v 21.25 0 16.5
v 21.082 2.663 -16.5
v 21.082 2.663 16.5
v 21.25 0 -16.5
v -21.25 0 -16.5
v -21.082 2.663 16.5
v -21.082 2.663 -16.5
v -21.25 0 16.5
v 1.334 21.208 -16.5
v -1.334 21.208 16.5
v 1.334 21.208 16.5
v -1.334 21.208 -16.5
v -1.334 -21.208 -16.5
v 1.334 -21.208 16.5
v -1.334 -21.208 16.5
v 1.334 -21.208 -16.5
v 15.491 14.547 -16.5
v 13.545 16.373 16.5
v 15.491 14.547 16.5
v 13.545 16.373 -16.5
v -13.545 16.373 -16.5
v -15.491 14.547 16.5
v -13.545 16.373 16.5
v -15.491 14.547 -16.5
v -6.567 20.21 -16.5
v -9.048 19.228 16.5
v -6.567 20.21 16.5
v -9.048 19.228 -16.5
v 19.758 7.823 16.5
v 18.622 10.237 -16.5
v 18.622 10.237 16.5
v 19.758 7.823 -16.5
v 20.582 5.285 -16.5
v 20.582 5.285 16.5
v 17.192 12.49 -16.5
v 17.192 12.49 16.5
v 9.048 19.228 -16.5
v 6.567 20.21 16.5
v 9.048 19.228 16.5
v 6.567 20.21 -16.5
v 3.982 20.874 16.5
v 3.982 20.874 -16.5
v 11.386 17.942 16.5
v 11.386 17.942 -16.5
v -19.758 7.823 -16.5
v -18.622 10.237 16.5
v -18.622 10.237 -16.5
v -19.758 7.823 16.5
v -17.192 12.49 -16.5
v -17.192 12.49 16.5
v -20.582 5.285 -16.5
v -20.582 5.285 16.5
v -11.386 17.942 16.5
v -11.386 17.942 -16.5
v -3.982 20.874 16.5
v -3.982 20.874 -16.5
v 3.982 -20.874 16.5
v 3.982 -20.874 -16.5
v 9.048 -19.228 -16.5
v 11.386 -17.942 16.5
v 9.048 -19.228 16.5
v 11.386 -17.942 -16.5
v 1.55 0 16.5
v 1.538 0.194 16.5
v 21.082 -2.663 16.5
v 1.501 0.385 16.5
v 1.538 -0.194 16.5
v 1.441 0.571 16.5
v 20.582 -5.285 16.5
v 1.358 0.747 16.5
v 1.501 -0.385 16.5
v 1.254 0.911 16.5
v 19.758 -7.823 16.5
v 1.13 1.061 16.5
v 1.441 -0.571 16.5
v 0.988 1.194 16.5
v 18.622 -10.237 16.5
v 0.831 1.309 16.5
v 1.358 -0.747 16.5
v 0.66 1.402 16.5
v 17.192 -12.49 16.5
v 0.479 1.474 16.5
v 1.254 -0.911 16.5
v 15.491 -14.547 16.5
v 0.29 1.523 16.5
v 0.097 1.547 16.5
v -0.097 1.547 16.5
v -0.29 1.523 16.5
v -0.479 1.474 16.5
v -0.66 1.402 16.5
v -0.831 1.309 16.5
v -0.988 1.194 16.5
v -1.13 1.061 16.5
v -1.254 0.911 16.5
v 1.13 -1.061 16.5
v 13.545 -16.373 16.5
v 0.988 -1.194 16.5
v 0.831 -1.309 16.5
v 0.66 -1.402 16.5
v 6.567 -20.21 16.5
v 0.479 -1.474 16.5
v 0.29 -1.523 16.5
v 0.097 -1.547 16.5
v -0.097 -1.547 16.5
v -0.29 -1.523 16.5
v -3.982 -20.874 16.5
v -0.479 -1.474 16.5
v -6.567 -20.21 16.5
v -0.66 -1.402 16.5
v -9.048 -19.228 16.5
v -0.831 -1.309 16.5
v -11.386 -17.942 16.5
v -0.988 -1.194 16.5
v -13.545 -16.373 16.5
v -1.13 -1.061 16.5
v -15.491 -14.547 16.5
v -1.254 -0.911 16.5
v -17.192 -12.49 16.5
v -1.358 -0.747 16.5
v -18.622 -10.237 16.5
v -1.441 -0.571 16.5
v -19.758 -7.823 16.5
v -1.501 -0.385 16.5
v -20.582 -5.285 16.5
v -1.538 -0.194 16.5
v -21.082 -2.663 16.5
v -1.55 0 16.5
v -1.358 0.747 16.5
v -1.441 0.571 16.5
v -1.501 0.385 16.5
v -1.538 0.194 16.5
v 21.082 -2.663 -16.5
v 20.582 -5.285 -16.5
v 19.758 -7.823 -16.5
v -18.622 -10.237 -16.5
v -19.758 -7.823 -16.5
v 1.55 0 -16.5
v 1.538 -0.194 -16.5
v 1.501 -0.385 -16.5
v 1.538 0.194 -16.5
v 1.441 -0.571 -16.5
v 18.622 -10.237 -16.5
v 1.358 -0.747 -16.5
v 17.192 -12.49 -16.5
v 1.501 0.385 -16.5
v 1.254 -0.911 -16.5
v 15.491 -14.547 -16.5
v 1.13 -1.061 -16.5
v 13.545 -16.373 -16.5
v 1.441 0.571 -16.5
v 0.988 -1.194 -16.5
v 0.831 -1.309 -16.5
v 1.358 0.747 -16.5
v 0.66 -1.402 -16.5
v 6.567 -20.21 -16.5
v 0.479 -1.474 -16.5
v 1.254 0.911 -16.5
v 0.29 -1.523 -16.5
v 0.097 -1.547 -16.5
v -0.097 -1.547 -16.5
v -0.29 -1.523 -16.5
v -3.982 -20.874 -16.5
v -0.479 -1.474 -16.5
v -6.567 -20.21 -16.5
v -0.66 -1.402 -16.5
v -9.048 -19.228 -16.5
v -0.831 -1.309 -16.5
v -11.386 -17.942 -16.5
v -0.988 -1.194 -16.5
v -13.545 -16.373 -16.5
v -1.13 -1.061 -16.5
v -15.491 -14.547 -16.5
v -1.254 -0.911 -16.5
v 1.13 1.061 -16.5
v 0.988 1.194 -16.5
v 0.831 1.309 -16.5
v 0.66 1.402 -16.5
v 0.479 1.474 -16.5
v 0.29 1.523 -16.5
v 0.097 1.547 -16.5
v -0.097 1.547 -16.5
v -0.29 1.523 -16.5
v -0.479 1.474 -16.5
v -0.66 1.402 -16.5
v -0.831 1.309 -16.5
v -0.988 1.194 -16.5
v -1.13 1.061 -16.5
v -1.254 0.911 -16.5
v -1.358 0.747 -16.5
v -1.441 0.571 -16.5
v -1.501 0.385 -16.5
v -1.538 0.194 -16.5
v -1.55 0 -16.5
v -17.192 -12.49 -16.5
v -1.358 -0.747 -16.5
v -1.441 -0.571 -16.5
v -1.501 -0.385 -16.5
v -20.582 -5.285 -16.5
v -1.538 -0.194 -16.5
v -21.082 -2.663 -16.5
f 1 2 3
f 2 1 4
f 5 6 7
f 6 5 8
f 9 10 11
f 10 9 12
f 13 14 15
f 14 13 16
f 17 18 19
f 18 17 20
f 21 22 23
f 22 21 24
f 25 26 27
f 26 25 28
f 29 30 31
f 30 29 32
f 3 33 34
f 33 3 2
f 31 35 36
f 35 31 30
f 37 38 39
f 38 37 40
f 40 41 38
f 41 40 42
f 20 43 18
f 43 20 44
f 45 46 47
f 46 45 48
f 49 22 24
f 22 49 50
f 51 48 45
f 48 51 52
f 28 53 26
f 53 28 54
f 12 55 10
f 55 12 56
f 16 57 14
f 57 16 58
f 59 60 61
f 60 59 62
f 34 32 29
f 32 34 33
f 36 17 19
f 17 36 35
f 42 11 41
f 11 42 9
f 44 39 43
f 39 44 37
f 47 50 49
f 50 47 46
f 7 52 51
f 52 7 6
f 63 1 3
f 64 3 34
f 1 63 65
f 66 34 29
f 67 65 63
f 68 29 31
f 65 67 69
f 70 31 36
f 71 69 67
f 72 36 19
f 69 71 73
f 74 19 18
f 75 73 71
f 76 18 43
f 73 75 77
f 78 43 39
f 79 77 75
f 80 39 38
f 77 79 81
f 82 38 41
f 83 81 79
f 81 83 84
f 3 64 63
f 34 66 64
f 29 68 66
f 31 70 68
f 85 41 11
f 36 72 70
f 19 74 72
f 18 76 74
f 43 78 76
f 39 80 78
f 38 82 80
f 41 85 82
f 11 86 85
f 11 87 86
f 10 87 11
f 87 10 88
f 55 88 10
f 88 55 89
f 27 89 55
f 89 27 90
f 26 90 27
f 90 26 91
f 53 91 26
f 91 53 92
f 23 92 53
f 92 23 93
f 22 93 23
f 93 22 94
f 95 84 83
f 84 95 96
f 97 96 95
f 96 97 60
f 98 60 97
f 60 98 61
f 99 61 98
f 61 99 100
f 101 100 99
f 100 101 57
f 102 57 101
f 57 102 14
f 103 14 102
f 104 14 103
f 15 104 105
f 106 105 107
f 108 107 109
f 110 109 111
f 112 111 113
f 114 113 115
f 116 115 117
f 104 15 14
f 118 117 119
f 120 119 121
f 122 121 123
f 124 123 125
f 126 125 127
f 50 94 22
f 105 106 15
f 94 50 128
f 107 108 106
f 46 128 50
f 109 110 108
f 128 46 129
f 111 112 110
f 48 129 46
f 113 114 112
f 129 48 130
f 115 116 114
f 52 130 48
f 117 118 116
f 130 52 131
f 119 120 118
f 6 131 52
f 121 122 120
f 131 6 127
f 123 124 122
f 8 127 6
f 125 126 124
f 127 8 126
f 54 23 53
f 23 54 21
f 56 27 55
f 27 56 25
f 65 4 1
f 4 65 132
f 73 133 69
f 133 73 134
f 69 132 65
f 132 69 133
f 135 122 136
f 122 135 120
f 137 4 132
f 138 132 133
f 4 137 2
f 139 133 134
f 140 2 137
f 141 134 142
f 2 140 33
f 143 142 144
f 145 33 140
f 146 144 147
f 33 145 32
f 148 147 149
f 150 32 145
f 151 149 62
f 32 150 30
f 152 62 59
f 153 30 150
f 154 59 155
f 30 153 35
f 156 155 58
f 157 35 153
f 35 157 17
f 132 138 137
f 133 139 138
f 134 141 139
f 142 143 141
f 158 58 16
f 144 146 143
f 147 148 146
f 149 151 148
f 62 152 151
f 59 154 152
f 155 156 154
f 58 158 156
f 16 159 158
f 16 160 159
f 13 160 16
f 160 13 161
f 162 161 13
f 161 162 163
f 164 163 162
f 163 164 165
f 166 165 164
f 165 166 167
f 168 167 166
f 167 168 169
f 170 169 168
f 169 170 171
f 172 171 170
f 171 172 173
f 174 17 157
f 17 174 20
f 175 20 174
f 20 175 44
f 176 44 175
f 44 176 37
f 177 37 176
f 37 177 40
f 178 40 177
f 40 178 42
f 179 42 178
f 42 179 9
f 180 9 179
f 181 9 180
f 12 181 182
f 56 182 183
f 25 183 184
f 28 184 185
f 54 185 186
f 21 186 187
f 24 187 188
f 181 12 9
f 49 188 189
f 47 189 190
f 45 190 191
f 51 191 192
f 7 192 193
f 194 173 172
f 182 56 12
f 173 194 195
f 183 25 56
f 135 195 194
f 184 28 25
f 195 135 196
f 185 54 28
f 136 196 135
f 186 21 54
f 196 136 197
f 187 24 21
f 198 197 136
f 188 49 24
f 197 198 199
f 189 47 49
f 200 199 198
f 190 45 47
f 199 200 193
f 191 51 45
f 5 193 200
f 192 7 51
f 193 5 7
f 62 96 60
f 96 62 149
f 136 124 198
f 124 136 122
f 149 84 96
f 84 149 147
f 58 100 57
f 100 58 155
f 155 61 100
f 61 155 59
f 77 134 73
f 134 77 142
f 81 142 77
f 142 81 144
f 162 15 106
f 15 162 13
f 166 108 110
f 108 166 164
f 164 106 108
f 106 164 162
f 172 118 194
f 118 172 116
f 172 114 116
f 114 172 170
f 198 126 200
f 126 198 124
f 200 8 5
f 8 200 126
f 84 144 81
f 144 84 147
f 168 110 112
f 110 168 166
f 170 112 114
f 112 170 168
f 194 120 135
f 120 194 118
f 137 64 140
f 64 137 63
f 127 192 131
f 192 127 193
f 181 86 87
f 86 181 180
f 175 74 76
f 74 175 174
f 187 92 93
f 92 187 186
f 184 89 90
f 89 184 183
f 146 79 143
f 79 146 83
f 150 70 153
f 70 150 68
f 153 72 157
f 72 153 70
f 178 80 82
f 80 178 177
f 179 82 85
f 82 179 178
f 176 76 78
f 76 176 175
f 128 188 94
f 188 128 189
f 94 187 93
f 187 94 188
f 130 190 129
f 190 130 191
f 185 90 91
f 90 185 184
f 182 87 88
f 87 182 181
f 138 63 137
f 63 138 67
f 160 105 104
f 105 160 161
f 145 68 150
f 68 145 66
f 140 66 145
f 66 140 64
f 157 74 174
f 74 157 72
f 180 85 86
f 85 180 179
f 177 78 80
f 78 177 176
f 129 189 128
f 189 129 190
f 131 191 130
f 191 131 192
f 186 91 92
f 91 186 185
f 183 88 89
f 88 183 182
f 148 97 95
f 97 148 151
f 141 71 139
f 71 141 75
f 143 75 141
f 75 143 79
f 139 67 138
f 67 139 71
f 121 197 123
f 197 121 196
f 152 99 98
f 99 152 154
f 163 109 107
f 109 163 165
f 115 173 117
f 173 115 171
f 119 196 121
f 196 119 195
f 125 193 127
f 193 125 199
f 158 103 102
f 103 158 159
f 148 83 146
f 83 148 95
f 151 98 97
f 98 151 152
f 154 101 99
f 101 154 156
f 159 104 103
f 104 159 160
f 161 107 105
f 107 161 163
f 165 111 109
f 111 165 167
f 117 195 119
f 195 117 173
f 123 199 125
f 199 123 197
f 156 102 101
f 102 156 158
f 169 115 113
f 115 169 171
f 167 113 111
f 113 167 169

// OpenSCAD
$fn = 50;


difference() {
	union() {
		translate(v = [0, 0, -16.5000000000]) {
			cylinder(h = 33, r = 21.2500000000);
		}
	}
	union() {
		translate(v = [0, 0, -100.0000000000]) {
			cylinder(h = 200, r = 1.5500000000);
		}
	}
}
